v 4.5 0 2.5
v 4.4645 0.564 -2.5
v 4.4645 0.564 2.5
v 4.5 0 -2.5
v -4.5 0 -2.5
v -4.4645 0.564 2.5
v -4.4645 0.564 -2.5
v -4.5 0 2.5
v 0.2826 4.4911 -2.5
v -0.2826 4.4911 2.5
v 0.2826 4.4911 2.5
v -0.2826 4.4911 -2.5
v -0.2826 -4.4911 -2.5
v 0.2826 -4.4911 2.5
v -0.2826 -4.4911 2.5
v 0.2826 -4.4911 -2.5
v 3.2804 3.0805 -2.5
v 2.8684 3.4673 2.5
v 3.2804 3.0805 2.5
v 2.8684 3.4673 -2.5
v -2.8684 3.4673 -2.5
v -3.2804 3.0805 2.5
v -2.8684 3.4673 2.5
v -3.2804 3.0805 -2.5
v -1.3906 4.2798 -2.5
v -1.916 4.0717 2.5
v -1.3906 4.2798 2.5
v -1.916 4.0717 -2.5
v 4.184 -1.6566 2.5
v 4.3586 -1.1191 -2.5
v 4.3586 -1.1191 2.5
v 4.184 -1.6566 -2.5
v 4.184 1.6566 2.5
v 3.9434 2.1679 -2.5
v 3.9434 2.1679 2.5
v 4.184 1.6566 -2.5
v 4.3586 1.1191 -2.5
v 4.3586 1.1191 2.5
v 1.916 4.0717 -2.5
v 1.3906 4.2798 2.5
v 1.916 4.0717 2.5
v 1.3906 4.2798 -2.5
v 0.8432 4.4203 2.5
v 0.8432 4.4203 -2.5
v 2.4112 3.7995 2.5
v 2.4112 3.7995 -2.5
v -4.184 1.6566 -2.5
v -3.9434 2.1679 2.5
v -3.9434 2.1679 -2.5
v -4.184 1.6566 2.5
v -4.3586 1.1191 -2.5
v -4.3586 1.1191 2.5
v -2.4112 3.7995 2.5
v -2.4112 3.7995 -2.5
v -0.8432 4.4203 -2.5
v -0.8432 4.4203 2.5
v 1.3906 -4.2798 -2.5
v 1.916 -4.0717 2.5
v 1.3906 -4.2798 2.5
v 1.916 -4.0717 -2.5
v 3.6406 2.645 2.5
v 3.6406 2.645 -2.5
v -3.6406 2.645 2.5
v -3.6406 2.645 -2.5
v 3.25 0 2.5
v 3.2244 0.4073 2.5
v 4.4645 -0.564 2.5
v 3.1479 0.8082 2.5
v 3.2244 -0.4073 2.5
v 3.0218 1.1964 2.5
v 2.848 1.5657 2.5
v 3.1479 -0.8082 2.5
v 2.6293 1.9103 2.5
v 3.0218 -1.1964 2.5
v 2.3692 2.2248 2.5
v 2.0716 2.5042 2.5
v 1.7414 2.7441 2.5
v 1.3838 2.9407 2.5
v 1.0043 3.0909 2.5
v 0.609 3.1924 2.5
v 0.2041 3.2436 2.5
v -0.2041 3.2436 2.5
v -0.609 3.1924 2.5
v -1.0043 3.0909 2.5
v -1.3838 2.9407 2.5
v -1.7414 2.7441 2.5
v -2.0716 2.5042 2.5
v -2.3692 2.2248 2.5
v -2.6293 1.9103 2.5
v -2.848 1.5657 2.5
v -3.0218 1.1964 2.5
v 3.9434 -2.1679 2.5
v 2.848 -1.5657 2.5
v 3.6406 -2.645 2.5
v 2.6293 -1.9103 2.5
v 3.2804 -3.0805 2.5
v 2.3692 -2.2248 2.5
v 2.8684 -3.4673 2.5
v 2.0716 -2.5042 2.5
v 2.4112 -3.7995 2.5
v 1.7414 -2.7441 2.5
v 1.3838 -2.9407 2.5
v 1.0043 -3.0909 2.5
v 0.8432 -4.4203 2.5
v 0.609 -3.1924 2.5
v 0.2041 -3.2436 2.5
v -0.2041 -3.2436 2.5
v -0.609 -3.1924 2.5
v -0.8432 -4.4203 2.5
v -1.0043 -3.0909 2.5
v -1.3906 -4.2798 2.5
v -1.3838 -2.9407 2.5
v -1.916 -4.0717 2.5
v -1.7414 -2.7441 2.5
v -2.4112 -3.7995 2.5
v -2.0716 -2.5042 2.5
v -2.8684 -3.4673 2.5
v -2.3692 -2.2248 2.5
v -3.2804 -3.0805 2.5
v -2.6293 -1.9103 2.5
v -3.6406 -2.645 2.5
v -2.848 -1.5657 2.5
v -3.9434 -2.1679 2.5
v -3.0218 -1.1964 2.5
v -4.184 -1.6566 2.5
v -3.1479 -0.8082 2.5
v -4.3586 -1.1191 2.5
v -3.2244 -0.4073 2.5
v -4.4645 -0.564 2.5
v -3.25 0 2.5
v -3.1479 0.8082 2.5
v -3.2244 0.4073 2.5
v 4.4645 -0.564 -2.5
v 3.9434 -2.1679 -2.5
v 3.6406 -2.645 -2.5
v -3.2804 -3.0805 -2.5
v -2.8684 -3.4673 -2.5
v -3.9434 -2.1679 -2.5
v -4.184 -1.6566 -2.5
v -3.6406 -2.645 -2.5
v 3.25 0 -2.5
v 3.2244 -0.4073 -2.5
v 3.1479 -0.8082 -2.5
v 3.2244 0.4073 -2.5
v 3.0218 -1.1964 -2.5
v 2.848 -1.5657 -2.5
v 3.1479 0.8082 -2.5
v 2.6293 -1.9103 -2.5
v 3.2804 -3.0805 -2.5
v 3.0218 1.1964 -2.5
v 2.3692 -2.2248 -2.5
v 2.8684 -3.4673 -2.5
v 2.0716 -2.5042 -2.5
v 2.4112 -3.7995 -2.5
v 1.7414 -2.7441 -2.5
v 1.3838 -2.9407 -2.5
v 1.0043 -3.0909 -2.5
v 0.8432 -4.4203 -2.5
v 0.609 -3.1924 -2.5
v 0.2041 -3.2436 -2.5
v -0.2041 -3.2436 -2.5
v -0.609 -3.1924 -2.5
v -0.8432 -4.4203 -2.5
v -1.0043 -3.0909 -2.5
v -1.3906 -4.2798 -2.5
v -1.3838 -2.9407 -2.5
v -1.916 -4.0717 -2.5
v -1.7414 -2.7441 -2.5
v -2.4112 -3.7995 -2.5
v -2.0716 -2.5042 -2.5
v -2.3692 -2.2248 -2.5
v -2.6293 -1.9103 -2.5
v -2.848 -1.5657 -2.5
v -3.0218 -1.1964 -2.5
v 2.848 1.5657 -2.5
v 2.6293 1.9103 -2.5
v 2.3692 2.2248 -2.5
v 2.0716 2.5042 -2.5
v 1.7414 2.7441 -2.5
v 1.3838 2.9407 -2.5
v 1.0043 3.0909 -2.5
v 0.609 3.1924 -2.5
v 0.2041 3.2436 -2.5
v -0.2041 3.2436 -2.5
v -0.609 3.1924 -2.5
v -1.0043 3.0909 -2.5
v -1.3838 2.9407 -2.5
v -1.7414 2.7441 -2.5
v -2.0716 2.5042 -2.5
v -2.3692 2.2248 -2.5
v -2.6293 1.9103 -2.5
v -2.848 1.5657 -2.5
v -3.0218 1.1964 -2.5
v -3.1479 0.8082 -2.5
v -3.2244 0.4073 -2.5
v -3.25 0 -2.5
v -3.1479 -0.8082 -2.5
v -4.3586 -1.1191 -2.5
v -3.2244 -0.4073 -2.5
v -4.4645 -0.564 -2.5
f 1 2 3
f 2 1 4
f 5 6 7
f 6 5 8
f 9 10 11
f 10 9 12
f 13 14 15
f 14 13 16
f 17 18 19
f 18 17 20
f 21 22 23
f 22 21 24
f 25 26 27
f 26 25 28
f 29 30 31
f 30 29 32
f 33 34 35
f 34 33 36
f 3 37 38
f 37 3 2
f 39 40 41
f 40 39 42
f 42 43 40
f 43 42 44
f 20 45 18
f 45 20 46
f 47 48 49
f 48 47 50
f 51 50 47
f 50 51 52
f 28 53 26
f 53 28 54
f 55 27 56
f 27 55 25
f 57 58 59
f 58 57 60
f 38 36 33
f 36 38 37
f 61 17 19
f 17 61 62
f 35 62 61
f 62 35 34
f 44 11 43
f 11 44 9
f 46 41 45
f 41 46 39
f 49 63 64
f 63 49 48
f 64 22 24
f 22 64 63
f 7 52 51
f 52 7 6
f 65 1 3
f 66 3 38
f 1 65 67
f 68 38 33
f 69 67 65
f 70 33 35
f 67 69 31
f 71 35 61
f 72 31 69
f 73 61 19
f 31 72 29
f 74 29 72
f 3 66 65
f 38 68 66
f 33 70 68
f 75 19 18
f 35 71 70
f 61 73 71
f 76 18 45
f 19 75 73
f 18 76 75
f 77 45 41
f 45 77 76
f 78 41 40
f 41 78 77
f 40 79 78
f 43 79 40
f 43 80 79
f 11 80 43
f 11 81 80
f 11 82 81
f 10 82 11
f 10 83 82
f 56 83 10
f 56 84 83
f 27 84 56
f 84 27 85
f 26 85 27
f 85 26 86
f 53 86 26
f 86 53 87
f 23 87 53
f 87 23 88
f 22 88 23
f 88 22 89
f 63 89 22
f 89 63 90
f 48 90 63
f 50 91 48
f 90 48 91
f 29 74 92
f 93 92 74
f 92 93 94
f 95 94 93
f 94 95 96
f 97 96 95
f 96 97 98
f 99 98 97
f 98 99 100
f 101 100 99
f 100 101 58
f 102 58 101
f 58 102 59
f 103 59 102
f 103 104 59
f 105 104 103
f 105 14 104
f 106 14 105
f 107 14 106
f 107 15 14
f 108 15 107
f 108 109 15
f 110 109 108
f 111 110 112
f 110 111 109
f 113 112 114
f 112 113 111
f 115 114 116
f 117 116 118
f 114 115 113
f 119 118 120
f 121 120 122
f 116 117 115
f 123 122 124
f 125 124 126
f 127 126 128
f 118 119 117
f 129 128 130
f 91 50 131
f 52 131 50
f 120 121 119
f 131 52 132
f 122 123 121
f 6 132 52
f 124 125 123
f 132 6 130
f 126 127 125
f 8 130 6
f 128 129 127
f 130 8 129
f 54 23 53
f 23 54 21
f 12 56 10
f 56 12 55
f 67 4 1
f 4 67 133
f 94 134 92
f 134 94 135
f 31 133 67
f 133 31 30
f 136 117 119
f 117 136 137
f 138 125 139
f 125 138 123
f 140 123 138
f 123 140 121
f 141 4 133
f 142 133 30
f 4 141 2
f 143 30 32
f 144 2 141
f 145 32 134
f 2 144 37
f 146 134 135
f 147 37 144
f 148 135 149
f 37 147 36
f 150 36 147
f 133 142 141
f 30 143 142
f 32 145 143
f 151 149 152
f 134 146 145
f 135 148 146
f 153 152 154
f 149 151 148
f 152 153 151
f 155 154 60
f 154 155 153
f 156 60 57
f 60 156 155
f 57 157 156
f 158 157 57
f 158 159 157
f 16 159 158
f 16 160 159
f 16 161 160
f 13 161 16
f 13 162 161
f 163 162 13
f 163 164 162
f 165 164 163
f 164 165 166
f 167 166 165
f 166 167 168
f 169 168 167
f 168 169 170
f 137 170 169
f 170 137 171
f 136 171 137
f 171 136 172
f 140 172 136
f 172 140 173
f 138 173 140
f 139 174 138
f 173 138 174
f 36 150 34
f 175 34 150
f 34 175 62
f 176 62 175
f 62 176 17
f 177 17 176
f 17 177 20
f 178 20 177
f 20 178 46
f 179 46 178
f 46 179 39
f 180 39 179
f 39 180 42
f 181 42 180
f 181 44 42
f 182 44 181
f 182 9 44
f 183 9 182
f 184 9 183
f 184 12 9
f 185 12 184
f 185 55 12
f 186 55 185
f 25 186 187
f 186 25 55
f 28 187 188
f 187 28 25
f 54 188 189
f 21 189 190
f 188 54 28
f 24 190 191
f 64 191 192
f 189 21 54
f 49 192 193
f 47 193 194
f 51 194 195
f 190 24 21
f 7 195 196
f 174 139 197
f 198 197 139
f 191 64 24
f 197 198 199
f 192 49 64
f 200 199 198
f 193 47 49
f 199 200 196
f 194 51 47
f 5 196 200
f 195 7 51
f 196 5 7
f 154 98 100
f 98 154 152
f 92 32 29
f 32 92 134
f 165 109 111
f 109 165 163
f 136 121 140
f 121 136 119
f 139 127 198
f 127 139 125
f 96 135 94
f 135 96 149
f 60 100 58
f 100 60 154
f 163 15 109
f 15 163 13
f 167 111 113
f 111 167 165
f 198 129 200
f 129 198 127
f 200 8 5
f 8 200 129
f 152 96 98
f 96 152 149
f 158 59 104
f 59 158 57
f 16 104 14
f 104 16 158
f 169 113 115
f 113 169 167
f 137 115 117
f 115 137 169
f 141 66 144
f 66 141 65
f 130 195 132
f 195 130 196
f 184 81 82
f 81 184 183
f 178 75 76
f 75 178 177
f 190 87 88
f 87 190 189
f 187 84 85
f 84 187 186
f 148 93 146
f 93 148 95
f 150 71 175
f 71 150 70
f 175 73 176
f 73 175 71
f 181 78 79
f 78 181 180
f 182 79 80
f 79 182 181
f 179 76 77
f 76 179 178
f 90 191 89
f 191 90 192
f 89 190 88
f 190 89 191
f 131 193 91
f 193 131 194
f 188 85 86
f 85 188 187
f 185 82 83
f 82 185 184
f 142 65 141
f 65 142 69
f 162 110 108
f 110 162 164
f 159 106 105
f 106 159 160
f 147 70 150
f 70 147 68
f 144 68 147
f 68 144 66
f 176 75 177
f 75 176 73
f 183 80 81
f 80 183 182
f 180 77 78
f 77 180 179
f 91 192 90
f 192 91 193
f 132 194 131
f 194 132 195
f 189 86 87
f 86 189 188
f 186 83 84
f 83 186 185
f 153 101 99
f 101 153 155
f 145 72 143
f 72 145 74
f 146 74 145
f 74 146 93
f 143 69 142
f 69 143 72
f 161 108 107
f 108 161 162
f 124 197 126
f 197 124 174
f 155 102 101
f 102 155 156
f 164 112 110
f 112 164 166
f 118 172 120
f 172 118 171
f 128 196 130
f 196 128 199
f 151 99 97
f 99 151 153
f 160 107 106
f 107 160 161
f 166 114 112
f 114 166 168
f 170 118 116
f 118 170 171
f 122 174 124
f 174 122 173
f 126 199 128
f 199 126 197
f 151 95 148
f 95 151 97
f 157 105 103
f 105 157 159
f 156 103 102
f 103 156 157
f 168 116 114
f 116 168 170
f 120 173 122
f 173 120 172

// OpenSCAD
$fn = 50;


difference() {
	union() {
		translate(v = [0, 0, -2.5000000000]) {
			cylinder(h = 5, r = 4.5000000000);
		}
	}
	union() {
		translate(v = [0, 0, -100.0000000000]) {
			cylinder(h = 200, r = 3.2500000000);
		}
	}
}
